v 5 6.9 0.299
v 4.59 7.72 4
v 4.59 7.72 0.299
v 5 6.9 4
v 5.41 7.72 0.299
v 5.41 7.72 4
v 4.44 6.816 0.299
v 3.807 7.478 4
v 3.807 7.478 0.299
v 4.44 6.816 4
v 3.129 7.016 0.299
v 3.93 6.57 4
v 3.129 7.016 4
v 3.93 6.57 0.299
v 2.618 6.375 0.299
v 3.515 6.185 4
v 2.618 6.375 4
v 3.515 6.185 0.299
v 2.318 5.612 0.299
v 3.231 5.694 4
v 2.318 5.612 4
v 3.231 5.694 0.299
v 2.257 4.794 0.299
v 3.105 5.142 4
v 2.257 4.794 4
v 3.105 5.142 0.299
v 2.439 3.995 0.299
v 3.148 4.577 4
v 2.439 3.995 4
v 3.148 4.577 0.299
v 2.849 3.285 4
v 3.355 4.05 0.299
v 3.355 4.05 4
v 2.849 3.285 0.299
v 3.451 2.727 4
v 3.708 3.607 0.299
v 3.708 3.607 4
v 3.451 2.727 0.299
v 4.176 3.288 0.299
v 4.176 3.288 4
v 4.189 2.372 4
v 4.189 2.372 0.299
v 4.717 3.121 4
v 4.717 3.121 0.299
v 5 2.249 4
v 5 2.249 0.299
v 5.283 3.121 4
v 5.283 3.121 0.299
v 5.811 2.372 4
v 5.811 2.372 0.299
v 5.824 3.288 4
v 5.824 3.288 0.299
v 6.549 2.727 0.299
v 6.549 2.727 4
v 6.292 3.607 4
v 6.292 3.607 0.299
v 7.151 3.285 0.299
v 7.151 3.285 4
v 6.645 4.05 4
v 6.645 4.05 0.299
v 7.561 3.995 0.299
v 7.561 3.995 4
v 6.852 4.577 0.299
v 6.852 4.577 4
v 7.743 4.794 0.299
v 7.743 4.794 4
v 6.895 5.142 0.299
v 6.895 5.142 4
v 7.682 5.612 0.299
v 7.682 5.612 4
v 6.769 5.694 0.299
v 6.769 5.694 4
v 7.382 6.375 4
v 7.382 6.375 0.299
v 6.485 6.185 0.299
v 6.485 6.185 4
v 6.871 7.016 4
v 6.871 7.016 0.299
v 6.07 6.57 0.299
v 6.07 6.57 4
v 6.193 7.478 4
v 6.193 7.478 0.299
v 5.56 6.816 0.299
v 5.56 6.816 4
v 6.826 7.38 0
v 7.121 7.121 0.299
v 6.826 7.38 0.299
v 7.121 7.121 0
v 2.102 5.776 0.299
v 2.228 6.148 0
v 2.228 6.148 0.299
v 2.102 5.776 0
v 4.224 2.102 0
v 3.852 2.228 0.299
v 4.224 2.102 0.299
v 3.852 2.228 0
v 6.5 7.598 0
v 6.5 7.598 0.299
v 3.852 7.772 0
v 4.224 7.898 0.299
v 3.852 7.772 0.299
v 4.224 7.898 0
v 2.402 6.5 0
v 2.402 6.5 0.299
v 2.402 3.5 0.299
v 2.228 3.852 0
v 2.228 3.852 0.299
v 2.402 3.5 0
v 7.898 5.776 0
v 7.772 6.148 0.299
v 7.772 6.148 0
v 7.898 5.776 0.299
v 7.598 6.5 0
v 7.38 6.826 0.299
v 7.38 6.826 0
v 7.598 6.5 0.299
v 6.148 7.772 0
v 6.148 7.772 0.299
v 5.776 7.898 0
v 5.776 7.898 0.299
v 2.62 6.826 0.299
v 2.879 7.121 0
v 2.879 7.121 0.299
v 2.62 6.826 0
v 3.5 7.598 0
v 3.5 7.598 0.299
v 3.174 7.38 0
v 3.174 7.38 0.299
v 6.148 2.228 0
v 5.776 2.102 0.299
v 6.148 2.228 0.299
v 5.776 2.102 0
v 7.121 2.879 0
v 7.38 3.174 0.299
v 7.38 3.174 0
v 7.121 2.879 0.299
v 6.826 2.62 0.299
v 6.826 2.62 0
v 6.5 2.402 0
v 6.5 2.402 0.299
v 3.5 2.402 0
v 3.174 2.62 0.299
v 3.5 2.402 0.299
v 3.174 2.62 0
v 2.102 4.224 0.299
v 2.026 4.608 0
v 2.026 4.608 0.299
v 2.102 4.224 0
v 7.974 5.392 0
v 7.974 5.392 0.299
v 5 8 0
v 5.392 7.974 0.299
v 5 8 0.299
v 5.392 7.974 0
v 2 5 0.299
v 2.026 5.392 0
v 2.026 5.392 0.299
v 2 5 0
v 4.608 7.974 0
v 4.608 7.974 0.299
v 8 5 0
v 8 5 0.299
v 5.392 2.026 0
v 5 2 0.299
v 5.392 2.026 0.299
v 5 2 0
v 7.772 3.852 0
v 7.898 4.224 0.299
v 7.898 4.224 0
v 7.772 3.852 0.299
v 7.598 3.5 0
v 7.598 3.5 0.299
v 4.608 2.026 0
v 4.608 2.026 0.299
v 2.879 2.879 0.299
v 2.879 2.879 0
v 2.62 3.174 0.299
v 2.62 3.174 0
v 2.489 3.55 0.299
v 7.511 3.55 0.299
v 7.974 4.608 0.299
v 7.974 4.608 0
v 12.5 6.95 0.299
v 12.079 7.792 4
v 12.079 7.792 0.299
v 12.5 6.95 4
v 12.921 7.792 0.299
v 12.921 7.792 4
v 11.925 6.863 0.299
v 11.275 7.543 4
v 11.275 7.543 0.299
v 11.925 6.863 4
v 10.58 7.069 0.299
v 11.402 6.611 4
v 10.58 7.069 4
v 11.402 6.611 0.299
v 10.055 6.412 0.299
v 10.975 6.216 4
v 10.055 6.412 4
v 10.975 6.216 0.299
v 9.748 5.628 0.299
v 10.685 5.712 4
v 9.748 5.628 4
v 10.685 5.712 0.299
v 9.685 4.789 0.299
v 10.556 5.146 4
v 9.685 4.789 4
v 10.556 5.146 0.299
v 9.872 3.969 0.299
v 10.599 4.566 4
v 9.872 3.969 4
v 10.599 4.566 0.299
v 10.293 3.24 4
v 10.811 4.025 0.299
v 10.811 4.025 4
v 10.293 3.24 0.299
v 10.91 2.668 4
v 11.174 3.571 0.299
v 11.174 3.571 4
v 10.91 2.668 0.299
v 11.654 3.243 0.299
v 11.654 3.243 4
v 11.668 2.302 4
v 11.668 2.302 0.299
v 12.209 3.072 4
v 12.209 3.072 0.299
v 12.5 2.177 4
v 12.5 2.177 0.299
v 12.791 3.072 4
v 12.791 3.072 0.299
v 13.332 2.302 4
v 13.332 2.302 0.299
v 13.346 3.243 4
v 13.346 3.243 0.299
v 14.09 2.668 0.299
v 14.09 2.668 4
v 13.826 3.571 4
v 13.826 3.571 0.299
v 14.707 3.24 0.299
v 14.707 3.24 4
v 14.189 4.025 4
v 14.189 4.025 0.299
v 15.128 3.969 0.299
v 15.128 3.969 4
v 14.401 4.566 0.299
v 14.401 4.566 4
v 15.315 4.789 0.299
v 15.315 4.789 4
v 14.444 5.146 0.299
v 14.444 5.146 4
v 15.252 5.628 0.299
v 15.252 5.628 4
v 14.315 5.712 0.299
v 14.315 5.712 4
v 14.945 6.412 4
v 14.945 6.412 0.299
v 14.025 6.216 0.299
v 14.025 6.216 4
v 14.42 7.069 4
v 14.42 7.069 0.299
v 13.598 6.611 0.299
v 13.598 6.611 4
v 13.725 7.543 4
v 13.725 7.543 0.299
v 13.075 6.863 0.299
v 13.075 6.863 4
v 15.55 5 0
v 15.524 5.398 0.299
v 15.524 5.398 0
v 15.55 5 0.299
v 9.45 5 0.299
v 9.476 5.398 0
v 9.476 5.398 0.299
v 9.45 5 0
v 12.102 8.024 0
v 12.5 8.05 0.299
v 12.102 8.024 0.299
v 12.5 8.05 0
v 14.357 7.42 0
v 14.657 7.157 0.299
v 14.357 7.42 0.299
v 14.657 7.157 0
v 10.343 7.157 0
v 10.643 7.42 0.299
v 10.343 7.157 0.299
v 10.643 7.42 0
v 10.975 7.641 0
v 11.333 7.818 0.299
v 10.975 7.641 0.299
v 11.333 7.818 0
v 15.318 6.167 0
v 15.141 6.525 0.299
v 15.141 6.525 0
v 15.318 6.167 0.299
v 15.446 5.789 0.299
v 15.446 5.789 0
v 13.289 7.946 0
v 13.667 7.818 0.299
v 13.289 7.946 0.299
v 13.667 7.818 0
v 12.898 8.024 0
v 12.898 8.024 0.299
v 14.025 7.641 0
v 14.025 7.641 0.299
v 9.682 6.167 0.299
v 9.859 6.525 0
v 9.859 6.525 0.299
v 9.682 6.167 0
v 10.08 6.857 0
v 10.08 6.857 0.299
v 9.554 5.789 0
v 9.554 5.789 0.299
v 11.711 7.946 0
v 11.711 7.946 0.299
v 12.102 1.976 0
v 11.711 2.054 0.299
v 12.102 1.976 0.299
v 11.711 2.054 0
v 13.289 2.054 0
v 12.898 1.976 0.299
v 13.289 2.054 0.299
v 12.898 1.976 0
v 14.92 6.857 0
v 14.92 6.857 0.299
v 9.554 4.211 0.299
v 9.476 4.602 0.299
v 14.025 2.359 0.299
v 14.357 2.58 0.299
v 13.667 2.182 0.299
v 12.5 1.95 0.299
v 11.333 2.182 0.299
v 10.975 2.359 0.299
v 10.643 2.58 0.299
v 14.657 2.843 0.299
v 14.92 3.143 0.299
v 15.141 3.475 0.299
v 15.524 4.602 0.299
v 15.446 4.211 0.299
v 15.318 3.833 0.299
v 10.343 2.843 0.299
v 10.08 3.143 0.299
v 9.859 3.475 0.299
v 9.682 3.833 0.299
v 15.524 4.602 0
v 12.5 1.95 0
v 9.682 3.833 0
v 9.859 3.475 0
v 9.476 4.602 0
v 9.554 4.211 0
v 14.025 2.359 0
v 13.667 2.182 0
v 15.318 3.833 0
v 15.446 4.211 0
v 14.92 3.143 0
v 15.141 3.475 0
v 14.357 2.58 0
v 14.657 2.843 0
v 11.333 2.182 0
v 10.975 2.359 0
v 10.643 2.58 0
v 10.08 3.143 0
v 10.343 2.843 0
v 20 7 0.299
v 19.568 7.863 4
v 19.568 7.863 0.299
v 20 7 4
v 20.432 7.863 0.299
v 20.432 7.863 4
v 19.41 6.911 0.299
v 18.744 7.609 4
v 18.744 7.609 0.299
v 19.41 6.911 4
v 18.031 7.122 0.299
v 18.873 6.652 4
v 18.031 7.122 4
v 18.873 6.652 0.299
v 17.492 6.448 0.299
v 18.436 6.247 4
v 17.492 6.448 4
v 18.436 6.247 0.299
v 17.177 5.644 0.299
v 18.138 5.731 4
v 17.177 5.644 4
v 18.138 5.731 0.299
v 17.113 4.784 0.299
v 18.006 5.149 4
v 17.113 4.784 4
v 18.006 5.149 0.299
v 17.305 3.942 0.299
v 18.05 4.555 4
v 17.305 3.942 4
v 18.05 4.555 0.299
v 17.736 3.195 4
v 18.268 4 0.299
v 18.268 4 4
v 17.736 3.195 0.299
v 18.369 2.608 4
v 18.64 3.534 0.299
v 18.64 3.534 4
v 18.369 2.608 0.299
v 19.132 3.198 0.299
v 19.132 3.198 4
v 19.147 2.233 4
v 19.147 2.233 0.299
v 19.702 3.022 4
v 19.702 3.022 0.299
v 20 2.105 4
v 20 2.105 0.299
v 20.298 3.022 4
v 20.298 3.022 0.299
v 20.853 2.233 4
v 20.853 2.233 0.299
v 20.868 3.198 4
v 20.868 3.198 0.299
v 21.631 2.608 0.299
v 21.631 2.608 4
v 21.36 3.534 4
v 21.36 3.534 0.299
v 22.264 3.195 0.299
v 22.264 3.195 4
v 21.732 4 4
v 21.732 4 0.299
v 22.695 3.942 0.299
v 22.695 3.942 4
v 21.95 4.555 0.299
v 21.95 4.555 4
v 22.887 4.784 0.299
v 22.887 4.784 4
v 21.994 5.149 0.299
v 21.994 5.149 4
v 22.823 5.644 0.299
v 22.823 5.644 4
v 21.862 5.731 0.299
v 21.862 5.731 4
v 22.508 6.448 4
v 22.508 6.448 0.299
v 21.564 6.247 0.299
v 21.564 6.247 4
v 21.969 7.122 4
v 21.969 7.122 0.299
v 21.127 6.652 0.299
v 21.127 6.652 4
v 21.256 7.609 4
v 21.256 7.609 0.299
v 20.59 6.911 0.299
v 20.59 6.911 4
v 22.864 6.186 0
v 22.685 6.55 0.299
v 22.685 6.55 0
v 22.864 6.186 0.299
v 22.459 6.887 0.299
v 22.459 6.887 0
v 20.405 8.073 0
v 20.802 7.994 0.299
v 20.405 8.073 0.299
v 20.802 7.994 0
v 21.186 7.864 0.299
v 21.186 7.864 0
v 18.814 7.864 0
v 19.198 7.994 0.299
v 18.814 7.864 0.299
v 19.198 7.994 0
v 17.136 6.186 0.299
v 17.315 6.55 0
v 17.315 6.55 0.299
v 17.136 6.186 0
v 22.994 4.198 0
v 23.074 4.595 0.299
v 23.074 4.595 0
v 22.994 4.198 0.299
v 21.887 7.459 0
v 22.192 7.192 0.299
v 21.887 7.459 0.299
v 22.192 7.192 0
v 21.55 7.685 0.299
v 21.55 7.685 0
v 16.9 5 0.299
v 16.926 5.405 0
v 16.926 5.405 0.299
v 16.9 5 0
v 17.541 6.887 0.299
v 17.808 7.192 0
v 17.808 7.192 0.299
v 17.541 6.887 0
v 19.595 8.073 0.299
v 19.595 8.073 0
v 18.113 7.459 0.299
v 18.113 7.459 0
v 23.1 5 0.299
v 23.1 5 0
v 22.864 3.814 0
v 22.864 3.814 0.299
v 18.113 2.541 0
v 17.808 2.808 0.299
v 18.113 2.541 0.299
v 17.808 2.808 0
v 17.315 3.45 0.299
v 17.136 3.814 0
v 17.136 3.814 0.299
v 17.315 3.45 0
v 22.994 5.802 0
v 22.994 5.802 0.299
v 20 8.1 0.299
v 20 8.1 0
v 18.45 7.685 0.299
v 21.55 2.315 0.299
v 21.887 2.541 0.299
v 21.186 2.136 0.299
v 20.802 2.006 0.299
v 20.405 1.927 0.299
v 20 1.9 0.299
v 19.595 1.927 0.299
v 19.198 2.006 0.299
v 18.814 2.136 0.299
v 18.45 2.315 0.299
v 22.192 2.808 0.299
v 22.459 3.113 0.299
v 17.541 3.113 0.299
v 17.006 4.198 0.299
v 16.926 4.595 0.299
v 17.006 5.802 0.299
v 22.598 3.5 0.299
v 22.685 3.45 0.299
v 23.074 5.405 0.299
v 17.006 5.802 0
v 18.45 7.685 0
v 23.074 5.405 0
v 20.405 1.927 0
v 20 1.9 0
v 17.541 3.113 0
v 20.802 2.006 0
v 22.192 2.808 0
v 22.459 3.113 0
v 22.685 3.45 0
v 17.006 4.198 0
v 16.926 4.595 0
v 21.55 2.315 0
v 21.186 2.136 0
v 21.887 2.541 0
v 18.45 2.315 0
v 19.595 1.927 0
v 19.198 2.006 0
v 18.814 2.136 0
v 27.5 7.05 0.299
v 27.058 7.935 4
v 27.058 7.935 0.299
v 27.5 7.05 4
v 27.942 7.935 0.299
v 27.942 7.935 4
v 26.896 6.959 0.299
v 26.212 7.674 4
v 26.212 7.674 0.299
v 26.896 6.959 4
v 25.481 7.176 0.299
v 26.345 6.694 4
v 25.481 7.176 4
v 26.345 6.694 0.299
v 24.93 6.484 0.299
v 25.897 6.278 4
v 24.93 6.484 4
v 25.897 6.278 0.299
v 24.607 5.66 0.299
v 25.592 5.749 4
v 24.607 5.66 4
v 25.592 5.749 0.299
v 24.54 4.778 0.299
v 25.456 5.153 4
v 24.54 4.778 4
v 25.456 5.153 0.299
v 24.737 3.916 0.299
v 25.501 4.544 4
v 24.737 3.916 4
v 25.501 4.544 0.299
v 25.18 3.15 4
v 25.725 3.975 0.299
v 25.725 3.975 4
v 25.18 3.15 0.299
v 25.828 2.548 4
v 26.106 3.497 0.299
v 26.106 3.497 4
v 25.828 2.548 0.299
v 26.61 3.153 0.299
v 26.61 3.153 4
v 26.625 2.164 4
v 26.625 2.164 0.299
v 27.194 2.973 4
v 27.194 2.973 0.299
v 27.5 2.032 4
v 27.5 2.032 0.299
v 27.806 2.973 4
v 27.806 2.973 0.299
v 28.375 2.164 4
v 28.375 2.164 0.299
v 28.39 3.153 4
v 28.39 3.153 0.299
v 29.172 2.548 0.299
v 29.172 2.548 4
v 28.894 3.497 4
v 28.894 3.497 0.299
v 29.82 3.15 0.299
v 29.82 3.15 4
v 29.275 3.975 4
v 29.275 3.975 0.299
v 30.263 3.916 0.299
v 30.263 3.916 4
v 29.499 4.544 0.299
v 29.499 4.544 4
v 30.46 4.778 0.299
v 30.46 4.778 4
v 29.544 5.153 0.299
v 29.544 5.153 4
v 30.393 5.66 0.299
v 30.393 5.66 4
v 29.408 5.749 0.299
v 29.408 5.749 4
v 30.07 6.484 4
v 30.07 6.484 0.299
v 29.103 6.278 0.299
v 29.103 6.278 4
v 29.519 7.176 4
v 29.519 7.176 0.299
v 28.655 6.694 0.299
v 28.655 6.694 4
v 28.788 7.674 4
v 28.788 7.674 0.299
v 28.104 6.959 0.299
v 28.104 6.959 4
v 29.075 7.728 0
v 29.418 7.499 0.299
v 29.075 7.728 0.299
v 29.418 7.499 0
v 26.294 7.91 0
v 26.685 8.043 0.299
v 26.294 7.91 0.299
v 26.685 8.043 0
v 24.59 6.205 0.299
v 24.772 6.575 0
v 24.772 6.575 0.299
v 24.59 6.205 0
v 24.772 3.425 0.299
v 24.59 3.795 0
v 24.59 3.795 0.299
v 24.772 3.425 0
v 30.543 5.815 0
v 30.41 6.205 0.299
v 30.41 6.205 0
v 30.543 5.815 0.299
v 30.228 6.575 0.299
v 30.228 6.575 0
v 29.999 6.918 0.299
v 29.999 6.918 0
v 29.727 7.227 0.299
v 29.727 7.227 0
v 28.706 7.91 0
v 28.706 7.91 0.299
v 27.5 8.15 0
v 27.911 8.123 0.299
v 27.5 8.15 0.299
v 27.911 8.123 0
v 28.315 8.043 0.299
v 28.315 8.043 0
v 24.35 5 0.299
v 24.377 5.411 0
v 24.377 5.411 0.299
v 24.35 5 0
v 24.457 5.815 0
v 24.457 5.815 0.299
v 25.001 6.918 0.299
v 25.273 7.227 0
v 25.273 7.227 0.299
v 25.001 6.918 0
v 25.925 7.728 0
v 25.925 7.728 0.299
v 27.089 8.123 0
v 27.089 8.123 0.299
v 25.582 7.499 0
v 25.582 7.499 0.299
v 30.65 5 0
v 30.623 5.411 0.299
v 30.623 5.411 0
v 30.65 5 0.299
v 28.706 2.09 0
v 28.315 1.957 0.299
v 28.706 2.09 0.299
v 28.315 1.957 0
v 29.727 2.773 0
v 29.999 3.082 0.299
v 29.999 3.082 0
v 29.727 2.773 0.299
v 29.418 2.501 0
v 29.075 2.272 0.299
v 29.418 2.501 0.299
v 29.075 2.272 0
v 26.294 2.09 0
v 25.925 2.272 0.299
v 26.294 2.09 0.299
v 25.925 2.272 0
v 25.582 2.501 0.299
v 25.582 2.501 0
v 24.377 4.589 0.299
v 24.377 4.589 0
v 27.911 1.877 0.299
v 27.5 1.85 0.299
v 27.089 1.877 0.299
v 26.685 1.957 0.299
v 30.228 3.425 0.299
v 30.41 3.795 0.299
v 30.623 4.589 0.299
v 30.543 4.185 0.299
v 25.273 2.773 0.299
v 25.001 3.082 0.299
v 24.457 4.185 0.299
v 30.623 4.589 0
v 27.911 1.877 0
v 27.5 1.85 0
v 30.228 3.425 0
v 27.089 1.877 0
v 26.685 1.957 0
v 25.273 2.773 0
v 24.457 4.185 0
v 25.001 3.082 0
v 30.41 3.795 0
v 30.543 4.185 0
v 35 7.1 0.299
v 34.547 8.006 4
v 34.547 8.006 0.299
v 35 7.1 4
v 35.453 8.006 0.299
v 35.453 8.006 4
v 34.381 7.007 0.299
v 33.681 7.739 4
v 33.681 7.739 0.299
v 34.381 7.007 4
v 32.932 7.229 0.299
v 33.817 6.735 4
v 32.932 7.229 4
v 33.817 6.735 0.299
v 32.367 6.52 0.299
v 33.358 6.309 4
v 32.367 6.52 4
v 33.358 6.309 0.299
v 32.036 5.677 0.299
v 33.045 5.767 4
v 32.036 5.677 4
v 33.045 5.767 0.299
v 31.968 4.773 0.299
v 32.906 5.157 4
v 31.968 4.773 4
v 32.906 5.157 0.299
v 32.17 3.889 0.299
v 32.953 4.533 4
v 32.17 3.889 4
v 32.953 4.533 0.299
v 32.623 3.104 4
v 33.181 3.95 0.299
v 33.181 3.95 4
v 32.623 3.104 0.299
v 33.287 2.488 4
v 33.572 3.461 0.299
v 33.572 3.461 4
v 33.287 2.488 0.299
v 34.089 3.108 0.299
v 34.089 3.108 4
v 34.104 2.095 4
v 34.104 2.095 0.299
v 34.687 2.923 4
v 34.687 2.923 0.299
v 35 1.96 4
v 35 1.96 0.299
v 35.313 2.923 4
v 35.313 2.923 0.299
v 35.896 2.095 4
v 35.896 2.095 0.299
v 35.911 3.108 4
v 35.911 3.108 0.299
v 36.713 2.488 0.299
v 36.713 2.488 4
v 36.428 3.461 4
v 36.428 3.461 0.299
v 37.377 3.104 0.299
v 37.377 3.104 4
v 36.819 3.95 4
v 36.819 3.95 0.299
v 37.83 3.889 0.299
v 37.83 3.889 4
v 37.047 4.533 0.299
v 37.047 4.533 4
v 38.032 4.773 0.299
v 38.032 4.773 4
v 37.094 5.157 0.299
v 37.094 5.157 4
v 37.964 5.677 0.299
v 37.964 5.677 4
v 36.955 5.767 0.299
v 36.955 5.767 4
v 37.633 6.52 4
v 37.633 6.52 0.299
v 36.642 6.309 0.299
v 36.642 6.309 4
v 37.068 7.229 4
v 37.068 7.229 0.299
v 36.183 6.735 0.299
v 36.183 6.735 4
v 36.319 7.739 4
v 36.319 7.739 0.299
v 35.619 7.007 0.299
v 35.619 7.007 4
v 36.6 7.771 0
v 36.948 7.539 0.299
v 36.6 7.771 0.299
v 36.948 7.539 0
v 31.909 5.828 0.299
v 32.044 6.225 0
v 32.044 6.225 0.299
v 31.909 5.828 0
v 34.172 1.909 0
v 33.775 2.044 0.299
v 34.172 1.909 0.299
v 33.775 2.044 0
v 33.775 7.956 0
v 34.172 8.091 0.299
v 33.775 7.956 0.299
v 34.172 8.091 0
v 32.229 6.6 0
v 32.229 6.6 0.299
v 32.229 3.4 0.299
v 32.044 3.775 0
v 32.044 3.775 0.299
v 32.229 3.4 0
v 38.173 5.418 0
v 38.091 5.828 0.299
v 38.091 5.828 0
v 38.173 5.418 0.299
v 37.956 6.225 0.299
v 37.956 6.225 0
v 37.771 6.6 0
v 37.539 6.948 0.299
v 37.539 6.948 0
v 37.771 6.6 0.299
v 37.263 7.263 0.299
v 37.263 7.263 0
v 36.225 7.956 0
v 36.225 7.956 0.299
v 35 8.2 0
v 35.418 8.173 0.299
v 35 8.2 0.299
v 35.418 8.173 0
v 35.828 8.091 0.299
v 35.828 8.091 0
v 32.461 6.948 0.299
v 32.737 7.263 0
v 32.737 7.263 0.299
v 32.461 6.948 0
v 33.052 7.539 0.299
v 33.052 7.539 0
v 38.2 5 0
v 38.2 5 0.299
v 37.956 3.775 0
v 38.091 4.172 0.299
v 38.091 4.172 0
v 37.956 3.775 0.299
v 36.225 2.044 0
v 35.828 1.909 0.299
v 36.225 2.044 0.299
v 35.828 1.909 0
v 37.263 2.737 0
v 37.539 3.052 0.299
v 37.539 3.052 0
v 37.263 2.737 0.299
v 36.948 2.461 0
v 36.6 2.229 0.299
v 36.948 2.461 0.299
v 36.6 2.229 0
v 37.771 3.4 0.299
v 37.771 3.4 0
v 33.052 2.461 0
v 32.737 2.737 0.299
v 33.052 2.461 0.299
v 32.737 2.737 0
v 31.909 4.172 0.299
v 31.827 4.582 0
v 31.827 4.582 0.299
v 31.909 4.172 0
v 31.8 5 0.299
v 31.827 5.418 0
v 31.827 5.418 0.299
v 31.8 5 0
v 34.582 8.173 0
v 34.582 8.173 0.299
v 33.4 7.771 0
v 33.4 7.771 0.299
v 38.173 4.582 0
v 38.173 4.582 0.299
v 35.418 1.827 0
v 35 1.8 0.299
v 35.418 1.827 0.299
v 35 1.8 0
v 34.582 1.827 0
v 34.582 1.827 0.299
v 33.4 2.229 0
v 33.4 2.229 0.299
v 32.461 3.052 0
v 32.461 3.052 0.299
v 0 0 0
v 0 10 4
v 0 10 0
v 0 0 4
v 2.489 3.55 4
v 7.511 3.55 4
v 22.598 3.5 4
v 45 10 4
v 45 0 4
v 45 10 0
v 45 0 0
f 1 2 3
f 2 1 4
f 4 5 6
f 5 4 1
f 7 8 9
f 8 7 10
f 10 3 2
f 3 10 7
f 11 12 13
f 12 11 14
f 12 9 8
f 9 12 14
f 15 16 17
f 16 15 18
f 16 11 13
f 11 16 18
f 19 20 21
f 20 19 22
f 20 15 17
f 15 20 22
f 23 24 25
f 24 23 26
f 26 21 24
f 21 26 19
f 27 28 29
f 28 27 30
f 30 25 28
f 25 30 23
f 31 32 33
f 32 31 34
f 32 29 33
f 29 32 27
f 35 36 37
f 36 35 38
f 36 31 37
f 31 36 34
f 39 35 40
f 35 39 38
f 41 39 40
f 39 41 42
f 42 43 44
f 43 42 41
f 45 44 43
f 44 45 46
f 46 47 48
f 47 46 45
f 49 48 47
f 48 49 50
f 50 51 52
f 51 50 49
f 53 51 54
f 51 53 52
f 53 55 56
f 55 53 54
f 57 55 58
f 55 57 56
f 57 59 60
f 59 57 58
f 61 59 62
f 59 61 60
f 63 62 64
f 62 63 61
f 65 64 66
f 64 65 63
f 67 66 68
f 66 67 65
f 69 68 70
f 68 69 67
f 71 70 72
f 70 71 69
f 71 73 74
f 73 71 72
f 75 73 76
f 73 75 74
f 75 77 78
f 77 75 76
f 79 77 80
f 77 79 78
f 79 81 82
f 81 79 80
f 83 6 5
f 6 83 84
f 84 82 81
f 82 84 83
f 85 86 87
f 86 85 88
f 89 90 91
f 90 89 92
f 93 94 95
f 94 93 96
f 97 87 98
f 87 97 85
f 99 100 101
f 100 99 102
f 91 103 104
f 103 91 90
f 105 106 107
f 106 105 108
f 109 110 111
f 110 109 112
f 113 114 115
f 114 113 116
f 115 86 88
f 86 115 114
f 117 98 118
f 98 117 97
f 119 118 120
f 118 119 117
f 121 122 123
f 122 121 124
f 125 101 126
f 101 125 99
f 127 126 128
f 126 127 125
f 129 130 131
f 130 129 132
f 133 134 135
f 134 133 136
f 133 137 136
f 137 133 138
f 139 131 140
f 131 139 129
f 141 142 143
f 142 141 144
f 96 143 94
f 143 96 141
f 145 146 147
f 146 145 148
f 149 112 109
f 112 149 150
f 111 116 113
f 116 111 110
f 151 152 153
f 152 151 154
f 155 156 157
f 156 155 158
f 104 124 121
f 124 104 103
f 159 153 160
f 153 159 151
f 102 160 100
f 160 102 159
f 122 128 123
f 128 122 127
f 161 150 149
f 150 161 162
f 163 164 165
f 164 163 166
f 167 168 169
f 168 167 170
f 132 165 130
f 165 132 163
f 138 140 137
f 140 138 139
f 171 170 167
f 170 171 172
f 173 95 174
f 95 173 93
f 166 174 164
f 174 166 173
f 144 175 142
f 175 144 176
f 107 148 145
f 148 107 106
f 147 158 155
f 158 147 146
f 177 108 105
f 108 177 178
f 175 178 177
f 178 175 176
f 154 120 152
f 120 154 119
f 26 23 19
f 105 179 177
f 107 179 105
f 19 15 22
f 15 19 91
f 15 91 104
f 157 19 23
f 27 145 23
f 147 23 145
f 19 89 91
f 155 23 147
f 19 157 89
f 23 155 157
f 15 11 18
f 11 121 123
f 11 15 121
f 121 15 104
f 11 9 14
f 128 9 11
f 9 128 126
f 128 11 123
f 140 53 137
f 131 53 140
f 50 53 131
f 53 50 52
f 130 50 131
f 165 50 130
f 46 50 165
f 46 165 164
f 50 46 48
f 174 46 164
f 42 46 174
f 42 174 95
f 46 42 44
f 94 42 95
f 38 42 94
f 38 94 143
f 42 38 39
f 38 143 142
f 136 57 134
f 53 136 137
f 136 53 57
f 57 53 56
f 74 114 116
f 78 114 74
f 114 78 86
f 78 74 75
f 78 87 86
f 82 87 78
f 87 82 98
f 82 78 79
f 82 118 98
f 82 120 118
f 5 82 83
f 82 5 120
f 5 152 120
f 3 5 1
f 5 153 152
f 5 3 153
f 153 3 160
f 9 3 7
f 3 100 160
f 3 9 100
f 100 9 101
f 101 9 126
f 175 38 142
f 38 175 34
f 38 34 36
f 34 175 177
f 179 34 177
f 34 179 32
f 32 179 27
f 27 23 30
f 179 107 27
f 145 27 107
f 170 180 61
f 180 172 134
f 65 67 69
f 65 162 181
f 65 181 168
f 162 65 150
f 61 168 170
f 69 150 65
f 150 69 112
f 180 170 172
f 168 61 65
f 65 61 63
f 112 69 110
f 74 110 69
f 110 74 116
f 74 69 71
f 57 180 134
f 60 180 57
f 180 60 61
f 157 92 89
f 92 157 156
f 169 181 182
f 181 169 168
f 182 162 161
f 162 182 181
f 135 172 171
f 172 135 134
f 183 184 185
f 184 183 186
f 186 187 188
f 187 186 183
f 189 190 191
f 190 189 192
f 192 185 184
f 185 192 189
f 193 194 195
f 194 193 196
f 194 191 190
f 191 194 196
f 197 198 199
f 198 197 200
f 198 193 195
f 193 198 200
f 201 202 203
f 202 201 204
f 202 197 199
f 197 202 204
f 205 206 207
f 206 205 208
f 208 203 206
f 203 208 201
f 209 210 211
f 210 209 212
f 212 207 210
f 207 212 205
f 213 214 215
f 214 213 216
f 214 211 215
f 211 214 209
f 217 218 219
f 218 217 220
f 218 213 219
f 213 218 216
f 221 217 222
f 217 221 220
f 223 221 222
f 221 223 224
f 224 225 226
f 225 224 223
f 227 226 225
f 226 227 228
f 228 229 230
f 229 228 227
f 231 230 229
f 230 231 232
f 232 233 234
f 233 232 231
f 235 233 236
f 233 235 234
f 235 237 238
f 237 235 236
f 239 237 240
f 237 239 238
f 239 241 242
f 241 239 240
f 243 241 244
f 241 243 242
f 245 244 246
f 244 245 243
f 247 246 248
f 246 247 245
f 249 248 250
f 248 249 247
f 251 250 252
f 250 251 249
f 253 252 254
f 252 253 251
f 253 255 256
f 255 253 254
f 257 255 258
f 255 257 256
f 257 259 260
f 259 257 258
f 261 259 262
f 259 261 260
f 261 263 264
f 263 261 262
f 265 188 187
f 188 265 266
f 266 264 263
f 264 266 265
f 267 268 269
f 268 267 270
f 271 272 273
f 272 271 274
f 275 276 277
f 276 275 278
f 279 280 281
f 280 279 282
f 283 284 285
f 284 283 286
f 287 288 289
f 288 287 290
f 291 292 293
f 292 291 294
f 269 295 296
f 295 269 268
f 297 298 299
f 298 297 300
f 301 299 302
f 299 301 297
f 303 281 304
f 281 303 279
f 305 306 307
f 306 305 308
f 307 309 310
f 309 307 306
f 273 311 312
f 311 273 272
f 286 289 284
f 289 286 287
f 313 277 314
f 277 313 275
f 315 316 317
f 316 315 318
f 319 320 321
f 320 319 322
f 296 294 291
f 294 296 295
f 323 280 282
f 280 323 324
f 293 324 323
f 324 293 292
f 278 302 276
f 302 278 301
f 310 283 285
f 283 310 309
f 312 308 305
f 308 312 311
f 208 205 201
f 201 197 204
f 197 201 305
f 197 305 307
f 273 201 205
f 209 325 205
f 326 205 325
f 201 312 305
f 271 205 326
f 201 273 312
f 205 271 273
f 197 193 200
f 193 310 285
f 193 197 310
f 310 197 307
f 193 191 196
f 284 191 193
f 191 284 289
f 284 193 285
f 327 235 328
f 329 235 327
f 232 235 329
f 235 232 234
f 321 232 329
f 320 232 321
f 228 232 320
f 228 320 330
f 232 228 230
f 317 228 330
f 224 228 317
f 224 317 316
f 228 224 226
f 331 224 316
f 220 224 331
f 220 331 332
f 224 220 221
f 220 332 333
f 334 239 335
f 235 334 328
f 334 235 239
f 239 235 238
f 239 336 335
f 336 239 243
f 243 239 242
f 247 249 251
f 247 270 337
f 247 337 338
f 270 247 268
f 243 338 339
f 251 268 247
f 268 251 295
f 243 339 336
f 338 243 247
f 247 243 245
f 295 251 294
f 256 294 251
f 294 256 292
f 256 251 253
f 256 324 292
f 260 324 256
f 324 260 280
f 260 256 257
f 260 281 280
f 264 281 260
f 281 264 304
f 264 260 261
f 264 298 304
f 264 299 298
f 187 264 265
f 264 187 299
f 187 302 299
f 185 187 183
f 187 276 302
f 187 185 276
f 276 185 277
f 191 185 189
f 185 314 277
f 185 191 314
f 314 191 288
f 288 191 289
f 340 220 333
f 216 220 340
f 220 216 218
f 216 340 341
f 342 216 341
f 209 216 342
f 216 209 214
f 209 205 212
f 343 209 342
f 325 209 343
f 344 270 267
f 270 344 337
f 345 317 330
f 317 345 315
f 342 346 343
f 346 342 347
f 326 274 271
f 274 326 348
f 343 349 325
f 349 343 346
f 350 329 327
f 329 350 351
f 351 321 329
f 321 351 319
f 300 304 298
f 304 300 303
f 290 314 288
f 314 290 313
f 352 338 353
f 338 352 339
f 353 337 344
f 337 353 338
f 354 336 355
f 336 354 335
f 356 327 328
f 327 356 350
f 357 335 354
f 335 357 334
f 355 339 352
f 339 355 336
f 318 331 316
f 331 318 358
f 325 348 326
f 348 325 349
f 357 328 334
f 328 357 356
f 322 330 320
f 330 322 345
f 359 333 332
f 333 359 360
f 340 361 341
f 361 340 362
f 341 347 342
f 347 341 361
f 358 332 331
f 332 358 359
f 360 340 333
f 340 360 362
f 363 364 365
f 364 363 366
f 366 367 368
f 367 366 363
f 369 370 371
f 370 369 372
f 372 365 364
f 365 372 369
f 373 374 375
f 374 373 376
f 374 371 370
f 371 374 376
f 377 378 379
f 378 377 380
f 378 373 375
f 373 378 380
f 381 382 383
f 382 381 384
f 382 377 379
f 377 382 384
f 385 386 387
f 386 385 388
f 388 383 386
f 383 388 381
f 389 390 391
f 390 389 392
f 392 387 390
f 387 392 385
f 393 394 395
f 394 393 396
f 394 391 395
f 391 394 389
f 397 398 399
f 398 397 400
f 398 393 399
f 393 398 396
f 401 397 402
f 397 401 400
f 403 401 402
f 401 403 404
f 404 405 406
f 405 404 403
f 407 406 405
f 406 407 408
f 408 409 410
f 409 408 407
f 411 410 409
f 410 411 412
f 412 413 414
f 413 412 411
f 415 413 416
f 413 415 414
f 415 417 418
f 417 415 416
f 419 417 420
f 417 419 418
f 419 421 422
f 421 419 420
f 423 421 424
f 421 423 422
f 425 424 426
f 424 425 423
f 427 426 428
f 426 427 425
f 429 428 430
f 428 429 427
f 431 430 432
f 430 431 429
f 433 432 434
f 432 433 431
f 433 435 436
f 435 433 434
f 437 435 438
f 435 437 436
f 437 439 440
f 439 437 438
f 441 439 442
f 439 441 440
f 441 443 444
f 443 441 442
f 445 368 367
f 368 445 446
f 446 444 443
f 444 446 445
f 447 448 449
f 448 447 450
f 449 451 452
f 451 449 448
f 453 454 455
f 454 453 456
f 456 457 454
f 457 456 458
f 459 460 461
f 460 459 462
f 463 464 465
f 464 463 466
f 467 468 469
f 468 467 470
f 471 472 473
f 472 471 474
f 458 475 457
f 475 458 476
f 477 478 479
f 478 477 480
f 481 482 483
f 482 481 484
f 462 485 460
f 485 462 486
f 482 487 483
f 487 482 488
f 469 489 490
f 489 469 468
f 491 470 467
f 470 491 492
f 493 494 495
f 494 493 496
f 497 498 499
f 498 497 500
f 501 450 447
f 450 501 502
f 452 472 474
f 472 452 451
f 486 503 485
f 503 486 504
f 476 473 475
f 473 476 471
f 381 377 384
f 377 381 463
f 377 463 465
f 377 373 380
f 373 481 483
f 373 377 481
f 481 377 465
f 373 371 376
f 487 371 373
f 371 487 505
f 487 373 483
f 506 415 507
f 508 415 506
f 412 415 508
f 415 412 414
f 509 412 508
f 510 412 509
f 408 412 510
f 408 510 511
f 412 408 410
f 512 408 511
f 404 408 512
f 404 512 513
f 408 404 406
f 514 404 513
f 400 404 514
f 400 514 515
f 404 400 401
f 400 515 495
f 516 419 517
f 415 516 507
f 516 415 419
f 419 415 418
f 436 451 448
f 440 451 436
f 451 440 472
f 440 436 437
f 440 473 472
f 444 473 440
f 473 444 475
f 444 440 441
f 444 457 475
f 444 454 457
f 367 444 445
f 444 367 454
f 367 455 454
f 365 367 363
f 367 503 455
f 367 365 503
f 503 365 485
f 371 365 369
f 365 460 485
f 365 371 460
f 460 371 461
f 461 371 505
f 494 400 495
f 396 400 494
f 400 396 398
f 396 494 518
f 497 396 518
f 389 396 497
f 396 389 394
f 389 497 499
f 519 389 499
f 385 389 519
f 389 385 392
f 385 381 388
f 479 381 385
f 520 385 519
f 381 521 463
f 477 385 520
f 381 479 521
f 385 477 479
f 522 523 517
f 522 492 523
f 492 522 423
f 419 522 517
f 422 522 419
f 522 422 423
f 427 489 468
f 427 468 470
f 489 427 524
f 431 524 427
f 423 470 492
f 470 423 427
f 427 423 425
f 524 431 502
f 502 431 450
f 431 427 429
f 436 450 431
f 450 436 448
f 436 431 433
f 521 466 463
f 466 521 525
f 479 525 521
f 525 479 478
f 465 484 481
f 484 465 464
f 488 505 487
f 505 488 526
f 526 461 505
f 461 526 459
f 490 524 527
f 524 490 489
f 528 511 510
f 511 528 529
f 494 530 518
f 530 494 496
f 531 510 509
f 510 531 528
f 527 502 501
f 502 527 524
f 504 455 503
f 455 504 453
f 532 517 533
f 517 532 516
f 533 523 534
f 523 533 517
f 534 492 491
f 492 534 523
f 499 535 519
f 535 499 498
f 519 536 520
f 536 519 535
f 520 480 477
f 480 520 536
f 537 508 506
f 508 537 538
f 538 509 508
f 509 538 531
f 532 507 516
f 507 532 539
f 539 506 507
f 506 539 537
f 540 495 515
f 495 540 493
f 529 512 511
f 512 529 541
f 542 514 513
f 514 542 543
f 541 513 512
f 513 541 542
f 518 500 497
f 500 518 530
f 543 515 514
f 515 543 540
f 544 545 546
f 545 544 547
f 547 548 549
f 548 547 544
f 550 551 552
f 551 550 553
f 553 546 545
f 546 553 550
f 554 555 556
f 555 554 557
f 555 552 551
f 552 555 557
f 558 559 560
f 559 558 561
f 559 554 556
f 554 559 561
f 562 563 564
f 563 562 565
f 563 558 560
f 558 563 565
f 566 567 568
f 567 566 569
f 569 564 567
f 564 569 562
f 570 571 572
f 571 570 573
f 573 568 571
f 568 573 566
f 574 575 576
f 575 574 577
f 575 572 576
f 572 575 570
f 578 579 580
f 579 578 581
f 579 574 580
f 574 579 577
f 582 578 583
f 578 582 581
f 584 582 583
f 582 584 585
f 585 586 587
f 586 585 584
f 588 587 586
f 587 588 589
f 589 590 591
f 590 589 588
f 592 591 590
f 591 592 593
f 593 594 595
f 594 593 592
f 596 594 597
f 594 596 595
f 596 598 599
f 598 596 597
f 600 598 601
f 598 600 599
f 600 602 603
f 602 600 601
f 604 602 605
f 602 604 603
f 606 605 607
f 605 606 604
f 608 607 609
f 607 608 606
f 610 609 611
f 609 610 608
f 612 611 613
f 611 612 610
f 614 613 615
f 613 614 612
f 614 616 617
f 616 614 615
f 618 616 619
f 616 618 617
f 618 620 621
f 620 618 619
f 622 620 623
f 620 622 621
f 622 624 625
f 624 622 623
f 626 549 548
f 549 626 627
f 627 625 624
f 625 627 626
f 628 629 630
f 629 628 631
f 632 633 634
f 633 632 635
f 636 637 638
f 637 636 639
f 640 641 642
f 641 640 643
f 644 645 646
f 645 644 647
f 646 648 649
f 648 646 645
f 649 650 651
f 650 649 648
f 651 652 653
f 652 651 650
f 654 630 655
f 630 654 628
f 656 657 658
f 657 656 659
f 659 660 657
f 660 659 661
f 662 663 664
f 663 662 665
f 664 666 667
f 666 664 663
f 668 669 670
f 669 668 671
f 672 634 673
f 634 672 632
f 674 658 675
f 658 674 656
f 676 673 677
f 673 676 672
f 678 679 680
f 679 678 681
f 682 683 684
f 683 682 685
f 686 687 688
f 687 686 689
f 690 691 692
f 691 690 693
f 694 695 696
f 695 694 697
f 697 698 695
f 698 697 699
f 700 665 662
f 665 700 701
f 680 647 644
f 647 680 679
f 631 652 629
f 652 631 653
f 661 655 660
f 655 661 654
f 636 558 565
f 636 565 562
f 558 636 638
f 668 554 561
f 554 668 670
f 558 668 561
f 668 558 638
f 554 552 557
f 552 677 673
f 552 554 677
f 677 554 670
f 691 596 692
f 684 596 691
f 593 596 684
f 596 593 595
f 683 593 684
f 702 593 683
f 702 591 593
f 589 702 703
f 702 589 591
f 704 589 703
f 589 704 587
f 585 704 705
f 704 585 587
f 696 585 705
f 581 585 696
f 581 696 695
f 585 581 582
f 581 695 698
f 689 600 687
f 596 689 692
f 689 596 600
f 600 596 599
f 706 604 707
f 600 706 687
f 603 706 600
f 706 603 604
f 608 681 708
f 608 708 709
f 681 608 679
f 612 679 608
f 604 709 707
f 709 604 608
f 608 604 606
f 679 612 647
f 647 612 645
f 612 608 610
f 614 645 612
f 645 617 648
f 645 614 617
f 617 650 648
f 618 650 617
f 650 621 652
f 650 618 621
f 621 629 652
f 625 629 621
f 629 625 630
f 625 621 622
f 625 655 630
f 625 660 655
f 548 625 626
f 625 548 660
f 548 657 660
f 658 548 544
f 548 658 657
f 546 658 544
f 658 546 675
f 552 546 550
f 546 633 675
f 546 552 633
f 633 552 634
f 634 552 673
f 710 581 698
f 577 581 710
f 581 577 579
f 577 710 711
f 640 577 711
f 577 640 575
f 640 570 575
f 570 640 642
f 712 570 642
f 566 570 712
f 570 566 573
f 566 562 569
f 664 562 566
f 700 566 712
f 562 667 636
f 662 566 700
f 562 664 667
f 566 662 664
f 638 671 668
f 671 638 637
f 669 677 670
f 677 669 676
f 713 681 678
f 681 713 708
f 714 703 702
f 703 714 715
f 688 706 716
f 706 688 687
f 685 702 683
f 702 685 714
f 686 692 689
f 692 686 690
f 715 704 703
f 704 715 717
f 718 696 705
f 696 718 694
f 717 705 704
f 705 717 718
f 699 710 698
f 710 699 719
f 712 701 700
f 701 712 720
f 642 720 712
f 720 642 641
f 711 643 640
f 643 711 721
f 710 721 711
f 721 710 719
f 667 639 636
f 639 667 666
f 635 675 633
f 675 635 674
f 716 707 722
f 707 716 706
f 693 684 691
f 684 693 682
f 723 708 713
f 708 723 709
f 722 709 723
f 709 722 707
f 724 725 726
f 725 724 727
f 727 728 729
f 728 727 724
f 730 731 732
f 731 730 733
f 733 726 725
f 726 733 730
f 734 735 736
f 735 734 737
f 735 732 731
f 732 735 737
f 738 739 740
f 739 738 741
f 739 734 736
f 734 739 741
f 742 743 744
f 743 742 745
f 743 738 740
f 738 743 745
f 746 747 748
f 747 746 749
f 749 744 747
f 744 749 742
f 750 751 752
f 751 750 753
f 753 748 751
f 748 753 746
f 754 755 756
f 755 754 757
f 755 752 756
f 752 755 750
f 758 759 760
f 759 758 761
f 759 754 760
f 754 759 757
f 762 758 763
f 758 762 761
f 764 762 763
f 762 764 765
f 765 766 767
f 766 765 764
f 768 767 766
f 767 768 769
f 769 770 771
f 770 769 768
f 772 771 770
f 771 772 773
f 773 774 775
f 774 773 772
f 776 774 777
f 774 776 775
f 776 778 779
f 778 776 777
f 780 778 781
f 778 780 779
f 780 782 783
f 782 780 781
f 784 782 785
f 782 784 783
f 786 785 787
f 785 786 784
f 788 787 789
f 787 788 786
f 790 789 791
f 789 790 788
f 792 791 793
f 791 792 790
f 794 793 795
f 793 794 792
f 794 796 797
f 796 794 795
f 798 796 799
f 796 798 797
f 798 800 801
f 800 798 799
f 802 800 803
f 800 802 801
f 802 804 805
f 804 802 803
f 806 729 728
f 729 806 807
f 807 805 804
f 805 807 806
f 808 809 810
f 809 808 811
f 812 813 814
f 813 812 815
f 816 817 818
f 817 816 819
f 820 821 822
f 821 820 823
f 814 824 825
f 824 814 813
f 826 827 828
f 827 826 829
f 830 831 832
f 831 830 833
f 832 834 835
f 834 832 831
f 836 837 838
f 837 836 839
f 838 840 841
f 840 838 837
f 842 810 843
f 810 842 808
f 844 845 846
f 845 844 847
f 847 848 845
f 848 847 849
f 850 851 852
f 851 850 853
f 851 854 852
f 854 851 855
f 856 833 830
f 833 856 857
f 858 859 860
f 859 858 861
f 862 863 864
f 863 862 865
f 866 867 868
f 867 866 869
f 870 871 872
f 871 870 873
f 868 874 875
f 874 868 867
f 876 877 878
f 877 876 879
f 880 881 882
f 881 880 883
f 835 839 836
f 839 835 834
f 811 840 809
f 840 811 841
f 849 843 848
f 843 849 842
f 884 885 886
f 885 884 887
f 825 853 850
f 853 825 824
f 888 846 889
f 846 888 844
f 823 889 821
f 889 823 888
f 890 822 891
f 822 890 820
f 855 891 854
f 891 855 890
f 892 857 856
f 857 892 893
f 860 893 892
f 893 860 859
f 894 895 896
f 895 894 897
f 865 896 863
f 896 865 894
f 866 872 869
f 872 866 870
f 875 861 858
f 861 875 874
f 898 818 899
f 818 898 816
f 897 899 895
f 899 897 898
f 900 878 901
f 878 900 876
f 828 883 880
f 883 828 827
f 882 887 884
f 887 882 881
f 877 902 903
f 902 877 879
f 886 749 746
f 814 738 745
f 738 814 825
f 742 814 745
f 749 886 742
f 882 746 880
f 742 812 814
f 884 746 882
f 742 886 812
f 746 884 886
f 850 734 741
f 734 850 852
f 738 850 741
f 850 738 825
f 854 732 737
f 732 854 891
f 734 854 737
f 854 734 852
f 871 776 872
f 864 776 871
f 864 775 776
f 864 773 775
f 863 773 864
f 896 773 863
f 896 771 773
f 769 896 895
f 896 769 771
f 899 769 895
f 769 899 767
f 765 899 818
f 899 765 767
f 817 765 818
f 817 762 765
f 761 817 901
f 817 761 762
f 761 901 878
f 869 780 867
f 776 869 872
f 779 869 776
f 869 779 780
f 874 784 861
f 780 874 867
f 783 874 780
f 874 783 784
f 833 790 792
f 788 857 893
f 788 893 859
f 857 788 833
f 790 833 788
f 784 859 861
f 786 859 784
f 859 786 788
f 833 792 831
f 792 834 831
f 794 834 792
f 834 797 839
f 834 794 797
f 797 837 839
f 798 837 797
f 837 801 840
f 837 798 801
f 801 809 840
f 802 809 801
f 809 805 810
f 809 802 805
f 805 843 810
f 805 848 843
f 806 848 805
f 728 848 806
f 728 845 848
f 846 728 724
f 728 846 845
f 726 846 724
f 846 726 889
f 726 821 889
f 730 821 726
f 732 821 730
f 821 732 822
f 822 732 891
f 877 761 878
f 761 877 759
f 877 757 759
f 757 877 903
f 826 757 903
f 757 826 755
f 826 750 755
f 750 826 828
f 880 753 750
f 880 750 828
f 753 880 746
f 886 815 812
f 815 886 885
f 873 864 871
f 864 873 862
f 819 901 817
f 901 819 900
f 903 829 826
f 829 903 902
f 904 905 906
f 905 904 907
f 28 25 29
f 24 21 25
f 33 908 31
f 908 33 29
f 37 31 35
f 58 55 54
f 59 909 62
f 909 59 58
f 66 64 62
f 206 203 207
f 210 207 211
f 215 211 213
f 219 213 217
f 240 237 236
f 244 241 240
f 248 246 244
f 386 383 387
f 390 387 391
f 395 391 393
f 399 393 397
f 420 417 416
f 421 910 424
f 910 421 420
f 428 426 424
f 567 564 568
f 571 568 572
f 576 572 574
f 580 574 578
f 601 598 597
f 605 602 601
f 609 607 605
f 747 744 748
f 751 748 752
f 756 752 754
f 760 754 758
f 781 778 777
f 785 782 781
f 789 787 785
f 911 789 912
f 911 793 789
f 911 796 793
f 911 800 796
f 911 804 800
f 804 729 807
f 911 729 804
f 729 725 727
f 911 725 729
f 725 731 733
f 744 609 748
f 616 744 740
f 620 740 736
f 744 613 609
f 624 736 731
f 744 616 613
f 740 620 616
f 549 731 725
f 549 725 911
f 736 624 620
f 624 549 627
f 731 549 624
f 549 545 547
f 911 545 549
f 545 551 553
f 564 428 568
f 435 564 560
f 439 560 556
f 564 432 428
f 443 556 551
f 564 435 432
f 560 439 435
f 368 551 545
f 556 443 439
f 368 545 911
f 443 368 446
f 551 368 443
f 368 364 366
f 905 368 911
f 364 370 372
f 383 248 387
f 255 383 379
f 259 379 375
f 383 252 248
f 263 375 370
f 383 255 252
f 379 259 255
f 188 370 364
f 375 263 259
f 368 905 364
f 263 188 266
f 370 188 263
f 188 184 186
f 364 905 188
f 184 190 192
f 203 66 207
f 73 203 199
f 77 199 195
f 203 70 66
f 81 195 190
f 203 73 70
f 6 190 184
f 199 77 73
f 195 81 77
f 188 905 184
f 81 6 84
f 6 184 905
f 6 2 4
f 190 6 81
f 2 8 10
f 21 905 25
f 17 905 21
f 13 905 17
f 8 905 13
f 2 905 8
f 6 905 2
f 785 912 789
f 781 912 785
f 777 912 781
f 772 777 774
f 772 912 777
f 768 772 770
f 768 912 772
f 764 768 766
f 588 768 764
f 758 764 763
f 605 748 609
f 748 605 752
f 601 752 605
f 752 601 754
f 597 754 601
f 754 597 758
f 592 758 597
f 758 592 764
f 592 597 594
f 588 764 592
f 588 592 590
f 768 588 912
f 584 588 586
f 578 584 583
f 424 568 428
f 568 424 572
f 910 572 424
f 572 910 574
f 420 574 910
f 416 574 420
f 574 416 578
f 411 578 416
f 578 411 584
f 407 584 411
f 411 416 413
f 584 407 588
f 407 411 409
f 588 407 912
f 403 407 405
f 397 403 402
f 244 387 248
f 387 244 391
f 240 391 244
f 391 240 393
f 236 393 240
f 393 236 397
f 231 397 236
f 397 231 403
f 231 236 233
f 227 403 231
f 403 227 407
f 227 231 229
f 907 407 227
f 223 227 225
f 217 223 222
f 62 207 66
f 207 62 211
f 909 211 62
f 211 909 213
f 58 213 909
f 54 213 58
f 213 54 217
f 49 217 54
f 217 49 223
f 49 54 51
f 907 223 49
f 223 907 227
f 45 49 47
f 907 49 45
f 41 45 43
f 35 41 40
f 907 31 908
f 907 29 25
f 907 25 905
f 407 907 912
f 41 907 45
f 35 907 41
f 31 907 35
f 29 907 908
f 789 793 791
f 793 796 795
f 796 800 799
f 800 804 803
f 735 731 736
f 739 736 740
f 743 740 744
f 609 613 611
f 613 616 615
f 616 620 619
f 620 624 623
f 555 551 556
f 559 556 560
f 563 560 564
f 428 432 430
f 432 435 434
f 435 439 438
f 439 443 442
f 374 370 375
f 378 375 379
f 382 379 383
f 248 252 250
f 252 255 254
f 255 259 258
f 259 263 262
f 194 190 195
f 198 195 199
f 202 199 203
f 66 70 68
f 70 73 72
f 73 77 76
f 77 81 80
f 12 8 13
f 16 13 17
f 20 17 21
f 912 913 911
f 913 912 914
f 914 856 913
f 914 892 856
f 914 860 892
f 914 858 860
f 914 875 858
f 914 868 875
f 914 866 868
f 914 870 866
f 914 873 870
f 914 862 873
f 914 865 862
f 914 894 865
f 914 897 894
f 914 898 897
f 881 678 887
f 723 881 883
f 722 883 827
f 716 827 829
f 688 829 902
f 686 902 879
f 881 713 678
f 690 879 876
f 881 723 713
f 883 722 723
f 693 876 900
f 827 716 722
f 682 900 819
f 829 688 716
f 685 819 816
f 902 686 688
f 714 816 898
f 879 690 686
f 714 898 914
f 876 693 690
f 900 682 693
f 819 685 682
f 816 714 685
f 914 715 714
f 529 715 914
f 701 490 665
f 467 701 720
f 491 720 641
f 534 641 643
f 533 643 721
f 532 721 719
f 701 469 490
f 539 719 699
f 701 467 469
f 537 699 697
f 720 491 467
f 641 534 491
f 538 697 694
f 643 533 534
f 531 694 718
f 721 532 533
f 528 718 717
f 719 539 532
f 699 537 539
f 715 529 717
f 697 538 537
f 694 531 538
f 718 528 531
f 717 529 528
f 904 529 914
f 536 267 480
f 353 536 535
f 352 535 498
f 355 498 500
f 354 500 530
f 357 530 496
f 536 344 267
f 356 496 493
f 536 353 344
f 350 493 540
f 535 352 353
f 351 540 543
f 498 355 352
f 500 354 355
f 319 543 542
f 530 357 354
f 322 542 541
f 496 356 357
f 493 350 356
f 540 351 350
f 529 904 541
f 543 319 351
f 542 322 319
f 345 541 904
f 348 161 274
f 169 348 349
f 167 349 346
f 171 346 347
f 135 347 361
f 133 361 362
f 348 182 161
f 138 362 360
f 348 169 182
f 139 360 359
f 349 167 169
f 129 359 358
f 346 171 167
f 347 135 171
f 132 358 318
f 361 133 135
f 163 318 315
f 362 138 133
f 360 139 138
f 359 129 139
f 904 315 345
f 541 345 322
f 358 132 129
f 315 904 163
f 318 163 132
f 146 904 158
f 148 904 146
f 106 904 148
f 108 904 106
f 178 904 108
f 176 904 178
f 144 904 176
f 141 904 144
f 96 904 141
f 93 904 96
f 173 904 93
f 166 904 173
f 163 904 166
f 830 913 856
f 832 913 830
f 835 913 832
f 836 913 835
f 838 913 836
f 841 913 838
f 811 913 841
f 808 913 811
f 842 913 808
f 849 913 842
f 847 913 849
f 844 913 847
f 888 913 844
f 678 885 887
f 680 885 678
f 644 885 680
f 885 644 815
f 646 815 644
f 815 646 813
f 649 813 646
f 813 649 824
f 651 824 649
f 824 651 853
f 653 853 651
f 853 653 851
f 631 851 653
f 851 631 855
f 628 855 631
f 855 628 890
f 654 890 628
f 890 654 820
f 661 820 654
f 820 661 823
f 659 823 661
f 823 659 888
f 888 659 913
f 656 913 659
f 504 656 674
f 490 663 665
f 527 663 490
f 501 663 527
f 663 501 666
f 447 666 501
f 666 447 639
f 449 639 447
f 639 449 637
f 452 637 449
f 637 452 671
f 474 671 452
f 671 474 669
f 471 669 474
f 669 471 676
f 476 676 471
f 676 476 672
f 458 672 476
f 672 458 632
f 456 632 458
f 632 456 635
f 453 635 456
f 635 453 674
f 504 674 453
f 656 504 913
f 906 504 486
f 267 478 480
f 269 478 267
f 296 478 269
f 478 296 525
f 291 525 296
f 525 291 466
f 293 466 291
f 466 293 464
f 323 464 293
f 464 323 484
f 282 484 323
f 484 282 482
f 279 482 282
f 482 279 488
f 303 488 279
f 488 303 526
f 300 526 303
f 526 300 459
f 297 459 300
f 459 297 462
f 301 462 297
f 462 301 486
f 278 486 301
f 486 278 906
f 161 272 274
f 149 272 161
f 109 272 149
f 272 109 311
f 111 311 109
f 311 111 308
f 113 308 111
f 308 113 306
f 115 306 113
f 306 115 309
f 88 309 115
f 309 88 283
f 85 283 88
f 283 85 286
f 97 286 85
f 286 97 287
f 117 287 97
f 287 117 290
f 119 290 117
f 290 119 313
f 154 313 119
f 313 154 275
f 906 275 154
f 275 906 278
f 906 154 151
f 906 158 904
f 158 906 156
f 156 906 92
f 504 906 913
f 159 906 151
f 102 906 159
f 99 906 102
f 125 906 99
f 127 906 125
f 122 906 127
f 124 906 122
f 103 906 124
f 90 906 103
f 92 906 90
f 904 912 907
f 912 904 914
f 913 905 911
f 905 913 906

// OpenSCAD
$fn = 48;

shaft_d = 5.8;

difference() {
  cube([45,10,4]);
  for (i=[0:.1:.4])
  translate([75*i+5,5,-.001])
  servo_socket(shaft_d+i);
}


*servo_socket(6);

tooth_width = 1;
tooth_length = 1;


module servo_socket(d) {
  echo(d);
  difference() {
    cylinder(r=d/2,h=6);
    
    for (r = [0:360/21:360])
    rotate([0,0,r])
    translate([0, d/2-tooth_length, -.001])
    linear_extrude(5)
    polygon([
      [0,0],
      [-tooth_width/2,tooth_length],
      [tooth_width/2,tooth_length],
      [0,0]
    ]);
  }
  cylinder(r=d/2+.1,h=.3);
}
